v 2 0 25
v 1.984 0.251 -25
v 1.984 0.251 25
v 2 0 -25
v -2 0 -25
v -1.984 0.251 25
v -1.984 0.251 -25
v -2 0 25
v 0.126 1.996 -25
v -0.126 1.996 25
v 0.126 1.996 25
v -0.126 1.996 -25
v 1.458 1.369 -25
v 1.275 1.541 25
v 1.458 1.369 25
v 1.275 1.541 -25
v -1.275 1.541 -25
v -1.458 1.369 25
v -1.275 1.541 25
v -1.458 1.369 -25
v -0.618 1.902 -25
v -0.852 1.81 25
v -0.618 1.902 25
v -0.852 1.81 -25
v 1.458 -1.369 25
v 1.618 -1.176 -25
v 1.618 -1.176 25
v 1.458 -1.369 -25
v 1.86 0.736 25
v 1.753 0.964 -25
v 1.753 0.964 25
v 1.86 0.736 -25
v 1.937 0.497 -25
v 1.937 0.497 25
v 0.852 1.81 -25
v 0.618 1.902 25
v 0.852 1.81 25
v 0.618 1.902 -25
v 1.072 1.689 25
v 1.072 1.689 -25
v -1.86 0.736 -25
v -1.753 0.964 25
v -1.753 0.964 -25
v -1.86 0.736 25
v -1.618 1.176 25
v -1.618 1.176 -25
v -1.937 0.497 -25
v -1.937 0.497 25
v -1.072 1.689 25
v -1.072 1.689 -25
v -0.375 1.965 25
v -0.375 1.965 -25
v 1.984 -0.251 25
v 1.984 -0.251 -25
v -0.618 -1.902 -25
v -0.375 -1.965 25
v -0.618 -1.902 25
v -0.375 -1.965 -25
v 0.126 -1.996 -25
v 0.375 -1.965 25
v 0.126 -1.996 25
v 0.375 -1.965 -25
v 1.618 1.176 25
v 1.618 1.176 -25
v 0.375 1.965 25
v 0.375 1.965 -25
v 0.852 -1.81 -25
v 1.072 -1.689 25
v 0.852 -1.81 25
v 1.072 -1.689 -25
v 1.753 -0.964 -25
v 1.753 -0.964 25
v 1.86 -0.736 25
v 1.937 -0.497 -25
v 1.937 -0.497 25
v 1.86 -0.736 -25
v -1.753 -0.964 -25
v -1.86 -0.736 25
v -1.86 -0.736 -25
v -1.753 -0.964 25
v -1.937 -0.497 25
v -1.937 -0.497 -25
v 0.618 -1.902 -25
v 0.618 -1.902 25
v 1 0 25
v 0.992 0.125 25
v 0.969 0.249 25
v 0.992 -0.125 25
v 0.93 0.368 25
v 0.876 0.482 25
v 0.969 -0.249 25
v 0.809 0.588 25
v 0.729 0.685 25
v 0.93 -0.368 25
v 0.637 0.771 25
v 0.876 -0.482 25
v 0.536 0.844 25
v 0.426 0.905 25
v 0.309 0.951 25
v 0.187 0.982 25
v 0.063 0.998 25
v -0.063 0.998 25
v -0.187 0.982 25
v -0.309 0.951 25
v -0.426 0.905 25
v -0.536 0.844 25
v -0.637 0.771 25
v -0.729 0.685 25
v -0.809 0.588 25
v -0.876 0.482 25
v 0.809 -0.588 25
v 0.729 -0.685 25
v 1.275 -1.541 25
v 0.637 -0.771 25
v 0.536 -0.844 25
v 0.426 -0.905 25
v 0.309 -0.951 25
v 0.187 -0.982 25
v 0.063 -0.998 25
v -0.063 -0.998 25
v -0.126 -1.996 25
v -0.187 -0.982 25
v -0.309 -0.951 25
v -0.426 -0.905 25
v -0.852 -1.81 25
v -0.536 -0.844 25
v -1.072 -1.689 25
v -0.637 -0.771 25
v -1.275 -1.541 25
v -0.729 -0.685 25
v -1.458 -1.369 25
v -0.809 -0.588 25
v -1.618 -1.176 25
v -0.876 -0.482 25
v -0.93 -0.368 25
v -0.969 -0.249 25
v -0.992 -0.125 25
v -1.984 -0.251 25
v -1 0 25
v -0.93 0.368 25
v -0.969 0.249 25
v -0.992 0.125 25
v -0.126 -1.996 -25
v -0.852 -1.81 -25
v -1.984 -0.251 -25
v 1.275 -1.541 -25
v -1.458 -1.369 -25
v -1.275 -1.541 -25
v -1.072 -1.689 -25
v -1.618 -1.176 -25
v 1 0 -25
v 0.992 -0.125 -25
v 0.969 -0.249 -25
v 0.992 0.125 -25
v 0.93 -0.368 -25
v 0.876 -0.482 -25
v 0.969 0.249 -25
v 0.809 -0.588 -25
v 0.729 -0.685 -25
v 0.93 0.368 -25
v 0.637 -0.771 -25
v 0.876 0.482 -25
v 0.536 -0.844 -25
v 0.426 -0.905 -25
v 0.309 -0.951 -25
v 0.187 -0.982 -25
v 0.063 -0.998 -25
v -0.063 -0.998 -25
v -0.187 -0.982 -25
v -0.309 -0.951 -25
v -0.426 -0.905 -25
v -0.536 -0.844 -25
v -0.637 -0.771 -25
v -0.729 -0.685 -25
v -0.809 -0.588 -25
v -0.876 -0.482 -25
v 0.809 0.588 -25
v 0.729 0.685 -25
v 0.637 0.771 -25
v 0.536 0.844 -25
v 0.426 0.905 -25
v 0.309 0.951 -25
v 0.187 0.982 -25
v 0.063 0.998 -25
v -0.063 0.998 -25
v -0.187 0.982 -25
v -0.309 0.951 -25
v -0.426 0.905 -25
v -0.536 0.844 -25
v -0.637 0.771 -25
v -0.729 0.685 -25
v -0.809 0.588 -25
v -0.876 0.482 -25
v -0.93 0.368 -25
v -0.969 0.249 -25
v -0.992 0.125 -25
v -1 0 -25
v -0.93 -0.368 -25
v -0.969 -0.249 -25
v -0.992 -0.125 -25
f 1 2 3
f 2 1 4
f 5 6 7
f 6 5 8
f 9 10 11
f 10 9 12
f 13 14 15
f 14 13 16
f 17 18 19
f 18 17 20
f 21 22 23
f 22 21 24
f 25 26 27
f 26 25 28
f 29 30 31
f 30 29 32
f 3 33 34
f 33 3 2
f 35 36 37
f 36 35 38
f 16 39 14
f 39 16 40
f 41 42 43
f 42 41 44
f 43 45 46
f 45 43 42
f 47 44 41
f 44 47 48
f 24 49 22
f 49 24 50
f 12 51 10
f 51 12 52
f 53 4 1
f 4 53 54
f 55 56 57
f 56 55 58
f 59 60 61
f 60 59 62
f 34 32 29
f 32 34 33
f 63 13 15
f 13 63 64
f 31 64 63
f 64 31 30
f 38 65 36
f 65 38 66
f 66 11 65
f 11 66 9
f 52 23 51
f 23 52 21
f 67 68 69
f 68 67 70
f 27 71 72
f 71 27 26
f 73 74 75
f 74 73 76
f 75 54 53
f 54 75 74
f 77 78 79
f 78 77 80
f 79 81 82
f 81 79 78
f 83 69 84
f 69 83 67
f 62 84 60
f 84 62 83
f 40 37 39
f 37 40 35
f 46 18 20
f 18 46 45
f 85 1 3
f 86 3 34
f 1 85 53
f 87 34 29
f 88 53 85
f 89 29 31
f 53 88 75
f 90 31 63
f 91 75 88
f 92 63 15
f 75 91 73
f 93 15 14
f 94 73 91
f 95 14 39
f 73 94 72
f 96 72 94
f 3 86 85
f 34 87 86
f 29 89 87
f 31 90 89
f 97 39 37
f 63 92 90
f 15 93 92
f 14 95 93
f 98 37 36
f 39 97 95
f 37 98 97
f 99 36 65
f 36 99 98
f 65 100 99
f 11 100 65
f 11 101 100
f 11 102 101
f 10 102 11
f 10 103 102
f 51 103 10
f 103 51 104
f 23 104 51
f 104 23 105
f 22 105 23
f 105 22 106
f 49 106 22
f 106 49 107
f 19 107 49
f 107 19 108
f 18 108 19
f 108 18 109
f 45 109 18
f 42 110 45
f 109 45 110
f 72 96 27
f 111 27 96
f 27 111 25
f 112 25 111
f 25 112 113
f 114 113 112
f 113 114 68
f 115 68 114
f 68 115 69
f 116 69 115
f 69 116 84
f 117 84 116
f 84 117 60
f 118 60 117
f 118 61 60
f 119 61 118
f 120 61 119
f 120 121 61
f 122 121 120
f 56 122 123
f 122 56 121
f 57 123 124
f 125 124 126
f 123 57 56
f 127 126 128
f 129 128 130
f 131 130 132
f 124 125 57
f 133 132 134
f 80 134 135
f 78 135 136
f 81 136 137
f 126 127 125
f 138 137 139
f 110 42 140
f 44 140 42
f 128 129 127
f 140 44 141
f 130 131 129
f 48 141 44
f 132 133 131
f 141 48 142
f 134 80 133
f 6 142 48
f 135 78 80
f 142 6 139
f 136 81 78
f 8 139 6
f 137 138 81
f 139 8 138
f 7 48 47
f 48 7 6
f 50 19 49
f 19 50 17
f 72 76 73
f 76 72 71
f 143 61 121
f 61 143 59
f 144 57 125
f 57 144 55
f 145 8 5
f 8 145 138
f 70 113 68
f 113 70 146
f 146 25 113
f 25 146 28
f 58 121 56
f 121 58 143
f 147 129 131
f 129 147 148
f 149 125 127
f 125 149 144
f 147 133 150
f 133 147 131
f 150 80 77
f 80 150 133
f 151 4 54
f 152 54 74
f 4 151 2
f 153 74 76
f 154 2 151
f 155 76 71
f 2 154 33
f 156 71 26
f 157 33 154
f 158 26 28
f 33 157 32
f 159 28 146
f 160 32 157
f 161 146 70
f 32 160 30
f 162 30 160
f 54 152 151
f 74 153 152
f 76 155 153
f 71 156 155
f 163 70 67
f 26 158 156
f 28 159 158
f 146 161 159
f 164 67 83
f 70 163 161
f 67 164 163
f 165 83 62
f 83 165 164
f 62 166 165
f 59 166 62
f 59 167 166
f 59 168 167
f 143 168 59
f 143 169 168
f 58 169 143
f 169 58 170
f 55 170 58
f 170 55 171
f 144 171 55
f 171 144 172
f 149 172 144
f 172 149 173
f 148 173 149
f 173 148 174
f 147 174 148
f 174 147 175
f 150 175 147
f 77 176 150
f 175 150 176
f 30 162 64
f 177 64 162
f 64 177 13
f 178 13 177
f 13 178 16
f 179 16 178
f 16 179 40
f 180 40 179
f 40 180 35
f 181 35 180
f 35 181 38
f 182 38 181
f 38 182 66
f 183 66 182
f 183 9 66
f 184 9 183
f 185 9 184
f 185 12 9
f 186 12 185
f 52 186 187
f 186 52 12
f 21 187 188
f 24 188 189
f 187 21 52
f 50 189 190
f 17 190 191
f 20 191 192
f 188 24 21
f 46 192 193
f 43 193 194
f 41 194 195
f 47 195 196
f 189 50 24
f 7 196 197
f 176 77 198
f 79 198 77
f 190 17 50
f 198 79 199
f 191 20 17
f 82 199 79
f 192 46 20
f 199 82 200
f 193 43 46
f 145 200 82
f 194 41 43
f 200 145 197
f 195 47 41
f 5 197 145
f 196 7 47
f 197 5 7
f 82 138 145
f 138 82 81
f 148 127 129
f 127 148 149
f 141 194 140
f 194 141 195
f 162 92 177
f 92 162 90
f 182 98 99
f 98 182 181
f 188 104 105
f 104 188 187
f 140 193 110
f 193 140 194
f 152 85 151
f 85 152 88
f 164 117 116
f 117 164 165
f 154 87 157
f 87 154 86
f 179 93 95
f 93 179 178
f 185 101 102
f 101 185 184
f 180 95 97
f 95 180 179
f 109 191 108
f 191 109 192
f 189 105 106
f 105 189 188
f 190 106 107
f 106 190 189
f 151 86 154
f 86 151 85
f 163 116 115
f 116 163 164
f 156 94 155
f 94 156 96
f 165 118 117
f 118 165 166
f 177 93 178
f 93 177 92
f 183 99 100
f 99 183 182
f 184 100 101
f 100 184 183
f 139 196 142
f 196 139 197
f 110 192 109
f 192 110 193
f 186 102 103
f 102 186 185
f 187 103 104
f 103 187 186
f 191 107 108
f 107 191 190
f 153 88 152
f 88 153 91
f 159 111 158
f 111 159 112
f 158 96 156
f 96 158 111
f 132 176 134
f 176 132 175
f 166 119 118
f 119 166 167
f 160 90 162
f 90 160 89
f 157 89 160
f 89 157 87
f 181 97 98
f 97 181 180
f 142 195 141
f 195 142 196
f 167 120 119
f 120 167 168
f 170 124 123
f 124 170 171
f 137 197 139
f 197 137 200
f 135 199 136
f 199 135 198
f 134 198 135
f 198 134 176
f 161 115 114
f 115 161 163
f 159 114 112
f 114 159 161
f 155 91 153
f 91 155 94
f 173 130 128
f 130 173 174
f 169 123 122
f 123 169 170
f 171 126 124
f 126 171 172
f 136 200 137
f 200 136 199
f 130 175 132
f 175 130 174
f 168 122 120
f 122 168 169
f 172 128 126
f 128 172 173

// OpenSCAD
$fn = 50;


difference() {
	union() {
		translate(v = [0, 0, -25.0000000000]) {
			cylinder(h = 50, r = 2.0000000000);
		}
	}
	union() {
		translate(v = [0, 0, -100.0000000000]) {
			cylinder(h = 200, r = 1.0000000000);
		}
	}
}
